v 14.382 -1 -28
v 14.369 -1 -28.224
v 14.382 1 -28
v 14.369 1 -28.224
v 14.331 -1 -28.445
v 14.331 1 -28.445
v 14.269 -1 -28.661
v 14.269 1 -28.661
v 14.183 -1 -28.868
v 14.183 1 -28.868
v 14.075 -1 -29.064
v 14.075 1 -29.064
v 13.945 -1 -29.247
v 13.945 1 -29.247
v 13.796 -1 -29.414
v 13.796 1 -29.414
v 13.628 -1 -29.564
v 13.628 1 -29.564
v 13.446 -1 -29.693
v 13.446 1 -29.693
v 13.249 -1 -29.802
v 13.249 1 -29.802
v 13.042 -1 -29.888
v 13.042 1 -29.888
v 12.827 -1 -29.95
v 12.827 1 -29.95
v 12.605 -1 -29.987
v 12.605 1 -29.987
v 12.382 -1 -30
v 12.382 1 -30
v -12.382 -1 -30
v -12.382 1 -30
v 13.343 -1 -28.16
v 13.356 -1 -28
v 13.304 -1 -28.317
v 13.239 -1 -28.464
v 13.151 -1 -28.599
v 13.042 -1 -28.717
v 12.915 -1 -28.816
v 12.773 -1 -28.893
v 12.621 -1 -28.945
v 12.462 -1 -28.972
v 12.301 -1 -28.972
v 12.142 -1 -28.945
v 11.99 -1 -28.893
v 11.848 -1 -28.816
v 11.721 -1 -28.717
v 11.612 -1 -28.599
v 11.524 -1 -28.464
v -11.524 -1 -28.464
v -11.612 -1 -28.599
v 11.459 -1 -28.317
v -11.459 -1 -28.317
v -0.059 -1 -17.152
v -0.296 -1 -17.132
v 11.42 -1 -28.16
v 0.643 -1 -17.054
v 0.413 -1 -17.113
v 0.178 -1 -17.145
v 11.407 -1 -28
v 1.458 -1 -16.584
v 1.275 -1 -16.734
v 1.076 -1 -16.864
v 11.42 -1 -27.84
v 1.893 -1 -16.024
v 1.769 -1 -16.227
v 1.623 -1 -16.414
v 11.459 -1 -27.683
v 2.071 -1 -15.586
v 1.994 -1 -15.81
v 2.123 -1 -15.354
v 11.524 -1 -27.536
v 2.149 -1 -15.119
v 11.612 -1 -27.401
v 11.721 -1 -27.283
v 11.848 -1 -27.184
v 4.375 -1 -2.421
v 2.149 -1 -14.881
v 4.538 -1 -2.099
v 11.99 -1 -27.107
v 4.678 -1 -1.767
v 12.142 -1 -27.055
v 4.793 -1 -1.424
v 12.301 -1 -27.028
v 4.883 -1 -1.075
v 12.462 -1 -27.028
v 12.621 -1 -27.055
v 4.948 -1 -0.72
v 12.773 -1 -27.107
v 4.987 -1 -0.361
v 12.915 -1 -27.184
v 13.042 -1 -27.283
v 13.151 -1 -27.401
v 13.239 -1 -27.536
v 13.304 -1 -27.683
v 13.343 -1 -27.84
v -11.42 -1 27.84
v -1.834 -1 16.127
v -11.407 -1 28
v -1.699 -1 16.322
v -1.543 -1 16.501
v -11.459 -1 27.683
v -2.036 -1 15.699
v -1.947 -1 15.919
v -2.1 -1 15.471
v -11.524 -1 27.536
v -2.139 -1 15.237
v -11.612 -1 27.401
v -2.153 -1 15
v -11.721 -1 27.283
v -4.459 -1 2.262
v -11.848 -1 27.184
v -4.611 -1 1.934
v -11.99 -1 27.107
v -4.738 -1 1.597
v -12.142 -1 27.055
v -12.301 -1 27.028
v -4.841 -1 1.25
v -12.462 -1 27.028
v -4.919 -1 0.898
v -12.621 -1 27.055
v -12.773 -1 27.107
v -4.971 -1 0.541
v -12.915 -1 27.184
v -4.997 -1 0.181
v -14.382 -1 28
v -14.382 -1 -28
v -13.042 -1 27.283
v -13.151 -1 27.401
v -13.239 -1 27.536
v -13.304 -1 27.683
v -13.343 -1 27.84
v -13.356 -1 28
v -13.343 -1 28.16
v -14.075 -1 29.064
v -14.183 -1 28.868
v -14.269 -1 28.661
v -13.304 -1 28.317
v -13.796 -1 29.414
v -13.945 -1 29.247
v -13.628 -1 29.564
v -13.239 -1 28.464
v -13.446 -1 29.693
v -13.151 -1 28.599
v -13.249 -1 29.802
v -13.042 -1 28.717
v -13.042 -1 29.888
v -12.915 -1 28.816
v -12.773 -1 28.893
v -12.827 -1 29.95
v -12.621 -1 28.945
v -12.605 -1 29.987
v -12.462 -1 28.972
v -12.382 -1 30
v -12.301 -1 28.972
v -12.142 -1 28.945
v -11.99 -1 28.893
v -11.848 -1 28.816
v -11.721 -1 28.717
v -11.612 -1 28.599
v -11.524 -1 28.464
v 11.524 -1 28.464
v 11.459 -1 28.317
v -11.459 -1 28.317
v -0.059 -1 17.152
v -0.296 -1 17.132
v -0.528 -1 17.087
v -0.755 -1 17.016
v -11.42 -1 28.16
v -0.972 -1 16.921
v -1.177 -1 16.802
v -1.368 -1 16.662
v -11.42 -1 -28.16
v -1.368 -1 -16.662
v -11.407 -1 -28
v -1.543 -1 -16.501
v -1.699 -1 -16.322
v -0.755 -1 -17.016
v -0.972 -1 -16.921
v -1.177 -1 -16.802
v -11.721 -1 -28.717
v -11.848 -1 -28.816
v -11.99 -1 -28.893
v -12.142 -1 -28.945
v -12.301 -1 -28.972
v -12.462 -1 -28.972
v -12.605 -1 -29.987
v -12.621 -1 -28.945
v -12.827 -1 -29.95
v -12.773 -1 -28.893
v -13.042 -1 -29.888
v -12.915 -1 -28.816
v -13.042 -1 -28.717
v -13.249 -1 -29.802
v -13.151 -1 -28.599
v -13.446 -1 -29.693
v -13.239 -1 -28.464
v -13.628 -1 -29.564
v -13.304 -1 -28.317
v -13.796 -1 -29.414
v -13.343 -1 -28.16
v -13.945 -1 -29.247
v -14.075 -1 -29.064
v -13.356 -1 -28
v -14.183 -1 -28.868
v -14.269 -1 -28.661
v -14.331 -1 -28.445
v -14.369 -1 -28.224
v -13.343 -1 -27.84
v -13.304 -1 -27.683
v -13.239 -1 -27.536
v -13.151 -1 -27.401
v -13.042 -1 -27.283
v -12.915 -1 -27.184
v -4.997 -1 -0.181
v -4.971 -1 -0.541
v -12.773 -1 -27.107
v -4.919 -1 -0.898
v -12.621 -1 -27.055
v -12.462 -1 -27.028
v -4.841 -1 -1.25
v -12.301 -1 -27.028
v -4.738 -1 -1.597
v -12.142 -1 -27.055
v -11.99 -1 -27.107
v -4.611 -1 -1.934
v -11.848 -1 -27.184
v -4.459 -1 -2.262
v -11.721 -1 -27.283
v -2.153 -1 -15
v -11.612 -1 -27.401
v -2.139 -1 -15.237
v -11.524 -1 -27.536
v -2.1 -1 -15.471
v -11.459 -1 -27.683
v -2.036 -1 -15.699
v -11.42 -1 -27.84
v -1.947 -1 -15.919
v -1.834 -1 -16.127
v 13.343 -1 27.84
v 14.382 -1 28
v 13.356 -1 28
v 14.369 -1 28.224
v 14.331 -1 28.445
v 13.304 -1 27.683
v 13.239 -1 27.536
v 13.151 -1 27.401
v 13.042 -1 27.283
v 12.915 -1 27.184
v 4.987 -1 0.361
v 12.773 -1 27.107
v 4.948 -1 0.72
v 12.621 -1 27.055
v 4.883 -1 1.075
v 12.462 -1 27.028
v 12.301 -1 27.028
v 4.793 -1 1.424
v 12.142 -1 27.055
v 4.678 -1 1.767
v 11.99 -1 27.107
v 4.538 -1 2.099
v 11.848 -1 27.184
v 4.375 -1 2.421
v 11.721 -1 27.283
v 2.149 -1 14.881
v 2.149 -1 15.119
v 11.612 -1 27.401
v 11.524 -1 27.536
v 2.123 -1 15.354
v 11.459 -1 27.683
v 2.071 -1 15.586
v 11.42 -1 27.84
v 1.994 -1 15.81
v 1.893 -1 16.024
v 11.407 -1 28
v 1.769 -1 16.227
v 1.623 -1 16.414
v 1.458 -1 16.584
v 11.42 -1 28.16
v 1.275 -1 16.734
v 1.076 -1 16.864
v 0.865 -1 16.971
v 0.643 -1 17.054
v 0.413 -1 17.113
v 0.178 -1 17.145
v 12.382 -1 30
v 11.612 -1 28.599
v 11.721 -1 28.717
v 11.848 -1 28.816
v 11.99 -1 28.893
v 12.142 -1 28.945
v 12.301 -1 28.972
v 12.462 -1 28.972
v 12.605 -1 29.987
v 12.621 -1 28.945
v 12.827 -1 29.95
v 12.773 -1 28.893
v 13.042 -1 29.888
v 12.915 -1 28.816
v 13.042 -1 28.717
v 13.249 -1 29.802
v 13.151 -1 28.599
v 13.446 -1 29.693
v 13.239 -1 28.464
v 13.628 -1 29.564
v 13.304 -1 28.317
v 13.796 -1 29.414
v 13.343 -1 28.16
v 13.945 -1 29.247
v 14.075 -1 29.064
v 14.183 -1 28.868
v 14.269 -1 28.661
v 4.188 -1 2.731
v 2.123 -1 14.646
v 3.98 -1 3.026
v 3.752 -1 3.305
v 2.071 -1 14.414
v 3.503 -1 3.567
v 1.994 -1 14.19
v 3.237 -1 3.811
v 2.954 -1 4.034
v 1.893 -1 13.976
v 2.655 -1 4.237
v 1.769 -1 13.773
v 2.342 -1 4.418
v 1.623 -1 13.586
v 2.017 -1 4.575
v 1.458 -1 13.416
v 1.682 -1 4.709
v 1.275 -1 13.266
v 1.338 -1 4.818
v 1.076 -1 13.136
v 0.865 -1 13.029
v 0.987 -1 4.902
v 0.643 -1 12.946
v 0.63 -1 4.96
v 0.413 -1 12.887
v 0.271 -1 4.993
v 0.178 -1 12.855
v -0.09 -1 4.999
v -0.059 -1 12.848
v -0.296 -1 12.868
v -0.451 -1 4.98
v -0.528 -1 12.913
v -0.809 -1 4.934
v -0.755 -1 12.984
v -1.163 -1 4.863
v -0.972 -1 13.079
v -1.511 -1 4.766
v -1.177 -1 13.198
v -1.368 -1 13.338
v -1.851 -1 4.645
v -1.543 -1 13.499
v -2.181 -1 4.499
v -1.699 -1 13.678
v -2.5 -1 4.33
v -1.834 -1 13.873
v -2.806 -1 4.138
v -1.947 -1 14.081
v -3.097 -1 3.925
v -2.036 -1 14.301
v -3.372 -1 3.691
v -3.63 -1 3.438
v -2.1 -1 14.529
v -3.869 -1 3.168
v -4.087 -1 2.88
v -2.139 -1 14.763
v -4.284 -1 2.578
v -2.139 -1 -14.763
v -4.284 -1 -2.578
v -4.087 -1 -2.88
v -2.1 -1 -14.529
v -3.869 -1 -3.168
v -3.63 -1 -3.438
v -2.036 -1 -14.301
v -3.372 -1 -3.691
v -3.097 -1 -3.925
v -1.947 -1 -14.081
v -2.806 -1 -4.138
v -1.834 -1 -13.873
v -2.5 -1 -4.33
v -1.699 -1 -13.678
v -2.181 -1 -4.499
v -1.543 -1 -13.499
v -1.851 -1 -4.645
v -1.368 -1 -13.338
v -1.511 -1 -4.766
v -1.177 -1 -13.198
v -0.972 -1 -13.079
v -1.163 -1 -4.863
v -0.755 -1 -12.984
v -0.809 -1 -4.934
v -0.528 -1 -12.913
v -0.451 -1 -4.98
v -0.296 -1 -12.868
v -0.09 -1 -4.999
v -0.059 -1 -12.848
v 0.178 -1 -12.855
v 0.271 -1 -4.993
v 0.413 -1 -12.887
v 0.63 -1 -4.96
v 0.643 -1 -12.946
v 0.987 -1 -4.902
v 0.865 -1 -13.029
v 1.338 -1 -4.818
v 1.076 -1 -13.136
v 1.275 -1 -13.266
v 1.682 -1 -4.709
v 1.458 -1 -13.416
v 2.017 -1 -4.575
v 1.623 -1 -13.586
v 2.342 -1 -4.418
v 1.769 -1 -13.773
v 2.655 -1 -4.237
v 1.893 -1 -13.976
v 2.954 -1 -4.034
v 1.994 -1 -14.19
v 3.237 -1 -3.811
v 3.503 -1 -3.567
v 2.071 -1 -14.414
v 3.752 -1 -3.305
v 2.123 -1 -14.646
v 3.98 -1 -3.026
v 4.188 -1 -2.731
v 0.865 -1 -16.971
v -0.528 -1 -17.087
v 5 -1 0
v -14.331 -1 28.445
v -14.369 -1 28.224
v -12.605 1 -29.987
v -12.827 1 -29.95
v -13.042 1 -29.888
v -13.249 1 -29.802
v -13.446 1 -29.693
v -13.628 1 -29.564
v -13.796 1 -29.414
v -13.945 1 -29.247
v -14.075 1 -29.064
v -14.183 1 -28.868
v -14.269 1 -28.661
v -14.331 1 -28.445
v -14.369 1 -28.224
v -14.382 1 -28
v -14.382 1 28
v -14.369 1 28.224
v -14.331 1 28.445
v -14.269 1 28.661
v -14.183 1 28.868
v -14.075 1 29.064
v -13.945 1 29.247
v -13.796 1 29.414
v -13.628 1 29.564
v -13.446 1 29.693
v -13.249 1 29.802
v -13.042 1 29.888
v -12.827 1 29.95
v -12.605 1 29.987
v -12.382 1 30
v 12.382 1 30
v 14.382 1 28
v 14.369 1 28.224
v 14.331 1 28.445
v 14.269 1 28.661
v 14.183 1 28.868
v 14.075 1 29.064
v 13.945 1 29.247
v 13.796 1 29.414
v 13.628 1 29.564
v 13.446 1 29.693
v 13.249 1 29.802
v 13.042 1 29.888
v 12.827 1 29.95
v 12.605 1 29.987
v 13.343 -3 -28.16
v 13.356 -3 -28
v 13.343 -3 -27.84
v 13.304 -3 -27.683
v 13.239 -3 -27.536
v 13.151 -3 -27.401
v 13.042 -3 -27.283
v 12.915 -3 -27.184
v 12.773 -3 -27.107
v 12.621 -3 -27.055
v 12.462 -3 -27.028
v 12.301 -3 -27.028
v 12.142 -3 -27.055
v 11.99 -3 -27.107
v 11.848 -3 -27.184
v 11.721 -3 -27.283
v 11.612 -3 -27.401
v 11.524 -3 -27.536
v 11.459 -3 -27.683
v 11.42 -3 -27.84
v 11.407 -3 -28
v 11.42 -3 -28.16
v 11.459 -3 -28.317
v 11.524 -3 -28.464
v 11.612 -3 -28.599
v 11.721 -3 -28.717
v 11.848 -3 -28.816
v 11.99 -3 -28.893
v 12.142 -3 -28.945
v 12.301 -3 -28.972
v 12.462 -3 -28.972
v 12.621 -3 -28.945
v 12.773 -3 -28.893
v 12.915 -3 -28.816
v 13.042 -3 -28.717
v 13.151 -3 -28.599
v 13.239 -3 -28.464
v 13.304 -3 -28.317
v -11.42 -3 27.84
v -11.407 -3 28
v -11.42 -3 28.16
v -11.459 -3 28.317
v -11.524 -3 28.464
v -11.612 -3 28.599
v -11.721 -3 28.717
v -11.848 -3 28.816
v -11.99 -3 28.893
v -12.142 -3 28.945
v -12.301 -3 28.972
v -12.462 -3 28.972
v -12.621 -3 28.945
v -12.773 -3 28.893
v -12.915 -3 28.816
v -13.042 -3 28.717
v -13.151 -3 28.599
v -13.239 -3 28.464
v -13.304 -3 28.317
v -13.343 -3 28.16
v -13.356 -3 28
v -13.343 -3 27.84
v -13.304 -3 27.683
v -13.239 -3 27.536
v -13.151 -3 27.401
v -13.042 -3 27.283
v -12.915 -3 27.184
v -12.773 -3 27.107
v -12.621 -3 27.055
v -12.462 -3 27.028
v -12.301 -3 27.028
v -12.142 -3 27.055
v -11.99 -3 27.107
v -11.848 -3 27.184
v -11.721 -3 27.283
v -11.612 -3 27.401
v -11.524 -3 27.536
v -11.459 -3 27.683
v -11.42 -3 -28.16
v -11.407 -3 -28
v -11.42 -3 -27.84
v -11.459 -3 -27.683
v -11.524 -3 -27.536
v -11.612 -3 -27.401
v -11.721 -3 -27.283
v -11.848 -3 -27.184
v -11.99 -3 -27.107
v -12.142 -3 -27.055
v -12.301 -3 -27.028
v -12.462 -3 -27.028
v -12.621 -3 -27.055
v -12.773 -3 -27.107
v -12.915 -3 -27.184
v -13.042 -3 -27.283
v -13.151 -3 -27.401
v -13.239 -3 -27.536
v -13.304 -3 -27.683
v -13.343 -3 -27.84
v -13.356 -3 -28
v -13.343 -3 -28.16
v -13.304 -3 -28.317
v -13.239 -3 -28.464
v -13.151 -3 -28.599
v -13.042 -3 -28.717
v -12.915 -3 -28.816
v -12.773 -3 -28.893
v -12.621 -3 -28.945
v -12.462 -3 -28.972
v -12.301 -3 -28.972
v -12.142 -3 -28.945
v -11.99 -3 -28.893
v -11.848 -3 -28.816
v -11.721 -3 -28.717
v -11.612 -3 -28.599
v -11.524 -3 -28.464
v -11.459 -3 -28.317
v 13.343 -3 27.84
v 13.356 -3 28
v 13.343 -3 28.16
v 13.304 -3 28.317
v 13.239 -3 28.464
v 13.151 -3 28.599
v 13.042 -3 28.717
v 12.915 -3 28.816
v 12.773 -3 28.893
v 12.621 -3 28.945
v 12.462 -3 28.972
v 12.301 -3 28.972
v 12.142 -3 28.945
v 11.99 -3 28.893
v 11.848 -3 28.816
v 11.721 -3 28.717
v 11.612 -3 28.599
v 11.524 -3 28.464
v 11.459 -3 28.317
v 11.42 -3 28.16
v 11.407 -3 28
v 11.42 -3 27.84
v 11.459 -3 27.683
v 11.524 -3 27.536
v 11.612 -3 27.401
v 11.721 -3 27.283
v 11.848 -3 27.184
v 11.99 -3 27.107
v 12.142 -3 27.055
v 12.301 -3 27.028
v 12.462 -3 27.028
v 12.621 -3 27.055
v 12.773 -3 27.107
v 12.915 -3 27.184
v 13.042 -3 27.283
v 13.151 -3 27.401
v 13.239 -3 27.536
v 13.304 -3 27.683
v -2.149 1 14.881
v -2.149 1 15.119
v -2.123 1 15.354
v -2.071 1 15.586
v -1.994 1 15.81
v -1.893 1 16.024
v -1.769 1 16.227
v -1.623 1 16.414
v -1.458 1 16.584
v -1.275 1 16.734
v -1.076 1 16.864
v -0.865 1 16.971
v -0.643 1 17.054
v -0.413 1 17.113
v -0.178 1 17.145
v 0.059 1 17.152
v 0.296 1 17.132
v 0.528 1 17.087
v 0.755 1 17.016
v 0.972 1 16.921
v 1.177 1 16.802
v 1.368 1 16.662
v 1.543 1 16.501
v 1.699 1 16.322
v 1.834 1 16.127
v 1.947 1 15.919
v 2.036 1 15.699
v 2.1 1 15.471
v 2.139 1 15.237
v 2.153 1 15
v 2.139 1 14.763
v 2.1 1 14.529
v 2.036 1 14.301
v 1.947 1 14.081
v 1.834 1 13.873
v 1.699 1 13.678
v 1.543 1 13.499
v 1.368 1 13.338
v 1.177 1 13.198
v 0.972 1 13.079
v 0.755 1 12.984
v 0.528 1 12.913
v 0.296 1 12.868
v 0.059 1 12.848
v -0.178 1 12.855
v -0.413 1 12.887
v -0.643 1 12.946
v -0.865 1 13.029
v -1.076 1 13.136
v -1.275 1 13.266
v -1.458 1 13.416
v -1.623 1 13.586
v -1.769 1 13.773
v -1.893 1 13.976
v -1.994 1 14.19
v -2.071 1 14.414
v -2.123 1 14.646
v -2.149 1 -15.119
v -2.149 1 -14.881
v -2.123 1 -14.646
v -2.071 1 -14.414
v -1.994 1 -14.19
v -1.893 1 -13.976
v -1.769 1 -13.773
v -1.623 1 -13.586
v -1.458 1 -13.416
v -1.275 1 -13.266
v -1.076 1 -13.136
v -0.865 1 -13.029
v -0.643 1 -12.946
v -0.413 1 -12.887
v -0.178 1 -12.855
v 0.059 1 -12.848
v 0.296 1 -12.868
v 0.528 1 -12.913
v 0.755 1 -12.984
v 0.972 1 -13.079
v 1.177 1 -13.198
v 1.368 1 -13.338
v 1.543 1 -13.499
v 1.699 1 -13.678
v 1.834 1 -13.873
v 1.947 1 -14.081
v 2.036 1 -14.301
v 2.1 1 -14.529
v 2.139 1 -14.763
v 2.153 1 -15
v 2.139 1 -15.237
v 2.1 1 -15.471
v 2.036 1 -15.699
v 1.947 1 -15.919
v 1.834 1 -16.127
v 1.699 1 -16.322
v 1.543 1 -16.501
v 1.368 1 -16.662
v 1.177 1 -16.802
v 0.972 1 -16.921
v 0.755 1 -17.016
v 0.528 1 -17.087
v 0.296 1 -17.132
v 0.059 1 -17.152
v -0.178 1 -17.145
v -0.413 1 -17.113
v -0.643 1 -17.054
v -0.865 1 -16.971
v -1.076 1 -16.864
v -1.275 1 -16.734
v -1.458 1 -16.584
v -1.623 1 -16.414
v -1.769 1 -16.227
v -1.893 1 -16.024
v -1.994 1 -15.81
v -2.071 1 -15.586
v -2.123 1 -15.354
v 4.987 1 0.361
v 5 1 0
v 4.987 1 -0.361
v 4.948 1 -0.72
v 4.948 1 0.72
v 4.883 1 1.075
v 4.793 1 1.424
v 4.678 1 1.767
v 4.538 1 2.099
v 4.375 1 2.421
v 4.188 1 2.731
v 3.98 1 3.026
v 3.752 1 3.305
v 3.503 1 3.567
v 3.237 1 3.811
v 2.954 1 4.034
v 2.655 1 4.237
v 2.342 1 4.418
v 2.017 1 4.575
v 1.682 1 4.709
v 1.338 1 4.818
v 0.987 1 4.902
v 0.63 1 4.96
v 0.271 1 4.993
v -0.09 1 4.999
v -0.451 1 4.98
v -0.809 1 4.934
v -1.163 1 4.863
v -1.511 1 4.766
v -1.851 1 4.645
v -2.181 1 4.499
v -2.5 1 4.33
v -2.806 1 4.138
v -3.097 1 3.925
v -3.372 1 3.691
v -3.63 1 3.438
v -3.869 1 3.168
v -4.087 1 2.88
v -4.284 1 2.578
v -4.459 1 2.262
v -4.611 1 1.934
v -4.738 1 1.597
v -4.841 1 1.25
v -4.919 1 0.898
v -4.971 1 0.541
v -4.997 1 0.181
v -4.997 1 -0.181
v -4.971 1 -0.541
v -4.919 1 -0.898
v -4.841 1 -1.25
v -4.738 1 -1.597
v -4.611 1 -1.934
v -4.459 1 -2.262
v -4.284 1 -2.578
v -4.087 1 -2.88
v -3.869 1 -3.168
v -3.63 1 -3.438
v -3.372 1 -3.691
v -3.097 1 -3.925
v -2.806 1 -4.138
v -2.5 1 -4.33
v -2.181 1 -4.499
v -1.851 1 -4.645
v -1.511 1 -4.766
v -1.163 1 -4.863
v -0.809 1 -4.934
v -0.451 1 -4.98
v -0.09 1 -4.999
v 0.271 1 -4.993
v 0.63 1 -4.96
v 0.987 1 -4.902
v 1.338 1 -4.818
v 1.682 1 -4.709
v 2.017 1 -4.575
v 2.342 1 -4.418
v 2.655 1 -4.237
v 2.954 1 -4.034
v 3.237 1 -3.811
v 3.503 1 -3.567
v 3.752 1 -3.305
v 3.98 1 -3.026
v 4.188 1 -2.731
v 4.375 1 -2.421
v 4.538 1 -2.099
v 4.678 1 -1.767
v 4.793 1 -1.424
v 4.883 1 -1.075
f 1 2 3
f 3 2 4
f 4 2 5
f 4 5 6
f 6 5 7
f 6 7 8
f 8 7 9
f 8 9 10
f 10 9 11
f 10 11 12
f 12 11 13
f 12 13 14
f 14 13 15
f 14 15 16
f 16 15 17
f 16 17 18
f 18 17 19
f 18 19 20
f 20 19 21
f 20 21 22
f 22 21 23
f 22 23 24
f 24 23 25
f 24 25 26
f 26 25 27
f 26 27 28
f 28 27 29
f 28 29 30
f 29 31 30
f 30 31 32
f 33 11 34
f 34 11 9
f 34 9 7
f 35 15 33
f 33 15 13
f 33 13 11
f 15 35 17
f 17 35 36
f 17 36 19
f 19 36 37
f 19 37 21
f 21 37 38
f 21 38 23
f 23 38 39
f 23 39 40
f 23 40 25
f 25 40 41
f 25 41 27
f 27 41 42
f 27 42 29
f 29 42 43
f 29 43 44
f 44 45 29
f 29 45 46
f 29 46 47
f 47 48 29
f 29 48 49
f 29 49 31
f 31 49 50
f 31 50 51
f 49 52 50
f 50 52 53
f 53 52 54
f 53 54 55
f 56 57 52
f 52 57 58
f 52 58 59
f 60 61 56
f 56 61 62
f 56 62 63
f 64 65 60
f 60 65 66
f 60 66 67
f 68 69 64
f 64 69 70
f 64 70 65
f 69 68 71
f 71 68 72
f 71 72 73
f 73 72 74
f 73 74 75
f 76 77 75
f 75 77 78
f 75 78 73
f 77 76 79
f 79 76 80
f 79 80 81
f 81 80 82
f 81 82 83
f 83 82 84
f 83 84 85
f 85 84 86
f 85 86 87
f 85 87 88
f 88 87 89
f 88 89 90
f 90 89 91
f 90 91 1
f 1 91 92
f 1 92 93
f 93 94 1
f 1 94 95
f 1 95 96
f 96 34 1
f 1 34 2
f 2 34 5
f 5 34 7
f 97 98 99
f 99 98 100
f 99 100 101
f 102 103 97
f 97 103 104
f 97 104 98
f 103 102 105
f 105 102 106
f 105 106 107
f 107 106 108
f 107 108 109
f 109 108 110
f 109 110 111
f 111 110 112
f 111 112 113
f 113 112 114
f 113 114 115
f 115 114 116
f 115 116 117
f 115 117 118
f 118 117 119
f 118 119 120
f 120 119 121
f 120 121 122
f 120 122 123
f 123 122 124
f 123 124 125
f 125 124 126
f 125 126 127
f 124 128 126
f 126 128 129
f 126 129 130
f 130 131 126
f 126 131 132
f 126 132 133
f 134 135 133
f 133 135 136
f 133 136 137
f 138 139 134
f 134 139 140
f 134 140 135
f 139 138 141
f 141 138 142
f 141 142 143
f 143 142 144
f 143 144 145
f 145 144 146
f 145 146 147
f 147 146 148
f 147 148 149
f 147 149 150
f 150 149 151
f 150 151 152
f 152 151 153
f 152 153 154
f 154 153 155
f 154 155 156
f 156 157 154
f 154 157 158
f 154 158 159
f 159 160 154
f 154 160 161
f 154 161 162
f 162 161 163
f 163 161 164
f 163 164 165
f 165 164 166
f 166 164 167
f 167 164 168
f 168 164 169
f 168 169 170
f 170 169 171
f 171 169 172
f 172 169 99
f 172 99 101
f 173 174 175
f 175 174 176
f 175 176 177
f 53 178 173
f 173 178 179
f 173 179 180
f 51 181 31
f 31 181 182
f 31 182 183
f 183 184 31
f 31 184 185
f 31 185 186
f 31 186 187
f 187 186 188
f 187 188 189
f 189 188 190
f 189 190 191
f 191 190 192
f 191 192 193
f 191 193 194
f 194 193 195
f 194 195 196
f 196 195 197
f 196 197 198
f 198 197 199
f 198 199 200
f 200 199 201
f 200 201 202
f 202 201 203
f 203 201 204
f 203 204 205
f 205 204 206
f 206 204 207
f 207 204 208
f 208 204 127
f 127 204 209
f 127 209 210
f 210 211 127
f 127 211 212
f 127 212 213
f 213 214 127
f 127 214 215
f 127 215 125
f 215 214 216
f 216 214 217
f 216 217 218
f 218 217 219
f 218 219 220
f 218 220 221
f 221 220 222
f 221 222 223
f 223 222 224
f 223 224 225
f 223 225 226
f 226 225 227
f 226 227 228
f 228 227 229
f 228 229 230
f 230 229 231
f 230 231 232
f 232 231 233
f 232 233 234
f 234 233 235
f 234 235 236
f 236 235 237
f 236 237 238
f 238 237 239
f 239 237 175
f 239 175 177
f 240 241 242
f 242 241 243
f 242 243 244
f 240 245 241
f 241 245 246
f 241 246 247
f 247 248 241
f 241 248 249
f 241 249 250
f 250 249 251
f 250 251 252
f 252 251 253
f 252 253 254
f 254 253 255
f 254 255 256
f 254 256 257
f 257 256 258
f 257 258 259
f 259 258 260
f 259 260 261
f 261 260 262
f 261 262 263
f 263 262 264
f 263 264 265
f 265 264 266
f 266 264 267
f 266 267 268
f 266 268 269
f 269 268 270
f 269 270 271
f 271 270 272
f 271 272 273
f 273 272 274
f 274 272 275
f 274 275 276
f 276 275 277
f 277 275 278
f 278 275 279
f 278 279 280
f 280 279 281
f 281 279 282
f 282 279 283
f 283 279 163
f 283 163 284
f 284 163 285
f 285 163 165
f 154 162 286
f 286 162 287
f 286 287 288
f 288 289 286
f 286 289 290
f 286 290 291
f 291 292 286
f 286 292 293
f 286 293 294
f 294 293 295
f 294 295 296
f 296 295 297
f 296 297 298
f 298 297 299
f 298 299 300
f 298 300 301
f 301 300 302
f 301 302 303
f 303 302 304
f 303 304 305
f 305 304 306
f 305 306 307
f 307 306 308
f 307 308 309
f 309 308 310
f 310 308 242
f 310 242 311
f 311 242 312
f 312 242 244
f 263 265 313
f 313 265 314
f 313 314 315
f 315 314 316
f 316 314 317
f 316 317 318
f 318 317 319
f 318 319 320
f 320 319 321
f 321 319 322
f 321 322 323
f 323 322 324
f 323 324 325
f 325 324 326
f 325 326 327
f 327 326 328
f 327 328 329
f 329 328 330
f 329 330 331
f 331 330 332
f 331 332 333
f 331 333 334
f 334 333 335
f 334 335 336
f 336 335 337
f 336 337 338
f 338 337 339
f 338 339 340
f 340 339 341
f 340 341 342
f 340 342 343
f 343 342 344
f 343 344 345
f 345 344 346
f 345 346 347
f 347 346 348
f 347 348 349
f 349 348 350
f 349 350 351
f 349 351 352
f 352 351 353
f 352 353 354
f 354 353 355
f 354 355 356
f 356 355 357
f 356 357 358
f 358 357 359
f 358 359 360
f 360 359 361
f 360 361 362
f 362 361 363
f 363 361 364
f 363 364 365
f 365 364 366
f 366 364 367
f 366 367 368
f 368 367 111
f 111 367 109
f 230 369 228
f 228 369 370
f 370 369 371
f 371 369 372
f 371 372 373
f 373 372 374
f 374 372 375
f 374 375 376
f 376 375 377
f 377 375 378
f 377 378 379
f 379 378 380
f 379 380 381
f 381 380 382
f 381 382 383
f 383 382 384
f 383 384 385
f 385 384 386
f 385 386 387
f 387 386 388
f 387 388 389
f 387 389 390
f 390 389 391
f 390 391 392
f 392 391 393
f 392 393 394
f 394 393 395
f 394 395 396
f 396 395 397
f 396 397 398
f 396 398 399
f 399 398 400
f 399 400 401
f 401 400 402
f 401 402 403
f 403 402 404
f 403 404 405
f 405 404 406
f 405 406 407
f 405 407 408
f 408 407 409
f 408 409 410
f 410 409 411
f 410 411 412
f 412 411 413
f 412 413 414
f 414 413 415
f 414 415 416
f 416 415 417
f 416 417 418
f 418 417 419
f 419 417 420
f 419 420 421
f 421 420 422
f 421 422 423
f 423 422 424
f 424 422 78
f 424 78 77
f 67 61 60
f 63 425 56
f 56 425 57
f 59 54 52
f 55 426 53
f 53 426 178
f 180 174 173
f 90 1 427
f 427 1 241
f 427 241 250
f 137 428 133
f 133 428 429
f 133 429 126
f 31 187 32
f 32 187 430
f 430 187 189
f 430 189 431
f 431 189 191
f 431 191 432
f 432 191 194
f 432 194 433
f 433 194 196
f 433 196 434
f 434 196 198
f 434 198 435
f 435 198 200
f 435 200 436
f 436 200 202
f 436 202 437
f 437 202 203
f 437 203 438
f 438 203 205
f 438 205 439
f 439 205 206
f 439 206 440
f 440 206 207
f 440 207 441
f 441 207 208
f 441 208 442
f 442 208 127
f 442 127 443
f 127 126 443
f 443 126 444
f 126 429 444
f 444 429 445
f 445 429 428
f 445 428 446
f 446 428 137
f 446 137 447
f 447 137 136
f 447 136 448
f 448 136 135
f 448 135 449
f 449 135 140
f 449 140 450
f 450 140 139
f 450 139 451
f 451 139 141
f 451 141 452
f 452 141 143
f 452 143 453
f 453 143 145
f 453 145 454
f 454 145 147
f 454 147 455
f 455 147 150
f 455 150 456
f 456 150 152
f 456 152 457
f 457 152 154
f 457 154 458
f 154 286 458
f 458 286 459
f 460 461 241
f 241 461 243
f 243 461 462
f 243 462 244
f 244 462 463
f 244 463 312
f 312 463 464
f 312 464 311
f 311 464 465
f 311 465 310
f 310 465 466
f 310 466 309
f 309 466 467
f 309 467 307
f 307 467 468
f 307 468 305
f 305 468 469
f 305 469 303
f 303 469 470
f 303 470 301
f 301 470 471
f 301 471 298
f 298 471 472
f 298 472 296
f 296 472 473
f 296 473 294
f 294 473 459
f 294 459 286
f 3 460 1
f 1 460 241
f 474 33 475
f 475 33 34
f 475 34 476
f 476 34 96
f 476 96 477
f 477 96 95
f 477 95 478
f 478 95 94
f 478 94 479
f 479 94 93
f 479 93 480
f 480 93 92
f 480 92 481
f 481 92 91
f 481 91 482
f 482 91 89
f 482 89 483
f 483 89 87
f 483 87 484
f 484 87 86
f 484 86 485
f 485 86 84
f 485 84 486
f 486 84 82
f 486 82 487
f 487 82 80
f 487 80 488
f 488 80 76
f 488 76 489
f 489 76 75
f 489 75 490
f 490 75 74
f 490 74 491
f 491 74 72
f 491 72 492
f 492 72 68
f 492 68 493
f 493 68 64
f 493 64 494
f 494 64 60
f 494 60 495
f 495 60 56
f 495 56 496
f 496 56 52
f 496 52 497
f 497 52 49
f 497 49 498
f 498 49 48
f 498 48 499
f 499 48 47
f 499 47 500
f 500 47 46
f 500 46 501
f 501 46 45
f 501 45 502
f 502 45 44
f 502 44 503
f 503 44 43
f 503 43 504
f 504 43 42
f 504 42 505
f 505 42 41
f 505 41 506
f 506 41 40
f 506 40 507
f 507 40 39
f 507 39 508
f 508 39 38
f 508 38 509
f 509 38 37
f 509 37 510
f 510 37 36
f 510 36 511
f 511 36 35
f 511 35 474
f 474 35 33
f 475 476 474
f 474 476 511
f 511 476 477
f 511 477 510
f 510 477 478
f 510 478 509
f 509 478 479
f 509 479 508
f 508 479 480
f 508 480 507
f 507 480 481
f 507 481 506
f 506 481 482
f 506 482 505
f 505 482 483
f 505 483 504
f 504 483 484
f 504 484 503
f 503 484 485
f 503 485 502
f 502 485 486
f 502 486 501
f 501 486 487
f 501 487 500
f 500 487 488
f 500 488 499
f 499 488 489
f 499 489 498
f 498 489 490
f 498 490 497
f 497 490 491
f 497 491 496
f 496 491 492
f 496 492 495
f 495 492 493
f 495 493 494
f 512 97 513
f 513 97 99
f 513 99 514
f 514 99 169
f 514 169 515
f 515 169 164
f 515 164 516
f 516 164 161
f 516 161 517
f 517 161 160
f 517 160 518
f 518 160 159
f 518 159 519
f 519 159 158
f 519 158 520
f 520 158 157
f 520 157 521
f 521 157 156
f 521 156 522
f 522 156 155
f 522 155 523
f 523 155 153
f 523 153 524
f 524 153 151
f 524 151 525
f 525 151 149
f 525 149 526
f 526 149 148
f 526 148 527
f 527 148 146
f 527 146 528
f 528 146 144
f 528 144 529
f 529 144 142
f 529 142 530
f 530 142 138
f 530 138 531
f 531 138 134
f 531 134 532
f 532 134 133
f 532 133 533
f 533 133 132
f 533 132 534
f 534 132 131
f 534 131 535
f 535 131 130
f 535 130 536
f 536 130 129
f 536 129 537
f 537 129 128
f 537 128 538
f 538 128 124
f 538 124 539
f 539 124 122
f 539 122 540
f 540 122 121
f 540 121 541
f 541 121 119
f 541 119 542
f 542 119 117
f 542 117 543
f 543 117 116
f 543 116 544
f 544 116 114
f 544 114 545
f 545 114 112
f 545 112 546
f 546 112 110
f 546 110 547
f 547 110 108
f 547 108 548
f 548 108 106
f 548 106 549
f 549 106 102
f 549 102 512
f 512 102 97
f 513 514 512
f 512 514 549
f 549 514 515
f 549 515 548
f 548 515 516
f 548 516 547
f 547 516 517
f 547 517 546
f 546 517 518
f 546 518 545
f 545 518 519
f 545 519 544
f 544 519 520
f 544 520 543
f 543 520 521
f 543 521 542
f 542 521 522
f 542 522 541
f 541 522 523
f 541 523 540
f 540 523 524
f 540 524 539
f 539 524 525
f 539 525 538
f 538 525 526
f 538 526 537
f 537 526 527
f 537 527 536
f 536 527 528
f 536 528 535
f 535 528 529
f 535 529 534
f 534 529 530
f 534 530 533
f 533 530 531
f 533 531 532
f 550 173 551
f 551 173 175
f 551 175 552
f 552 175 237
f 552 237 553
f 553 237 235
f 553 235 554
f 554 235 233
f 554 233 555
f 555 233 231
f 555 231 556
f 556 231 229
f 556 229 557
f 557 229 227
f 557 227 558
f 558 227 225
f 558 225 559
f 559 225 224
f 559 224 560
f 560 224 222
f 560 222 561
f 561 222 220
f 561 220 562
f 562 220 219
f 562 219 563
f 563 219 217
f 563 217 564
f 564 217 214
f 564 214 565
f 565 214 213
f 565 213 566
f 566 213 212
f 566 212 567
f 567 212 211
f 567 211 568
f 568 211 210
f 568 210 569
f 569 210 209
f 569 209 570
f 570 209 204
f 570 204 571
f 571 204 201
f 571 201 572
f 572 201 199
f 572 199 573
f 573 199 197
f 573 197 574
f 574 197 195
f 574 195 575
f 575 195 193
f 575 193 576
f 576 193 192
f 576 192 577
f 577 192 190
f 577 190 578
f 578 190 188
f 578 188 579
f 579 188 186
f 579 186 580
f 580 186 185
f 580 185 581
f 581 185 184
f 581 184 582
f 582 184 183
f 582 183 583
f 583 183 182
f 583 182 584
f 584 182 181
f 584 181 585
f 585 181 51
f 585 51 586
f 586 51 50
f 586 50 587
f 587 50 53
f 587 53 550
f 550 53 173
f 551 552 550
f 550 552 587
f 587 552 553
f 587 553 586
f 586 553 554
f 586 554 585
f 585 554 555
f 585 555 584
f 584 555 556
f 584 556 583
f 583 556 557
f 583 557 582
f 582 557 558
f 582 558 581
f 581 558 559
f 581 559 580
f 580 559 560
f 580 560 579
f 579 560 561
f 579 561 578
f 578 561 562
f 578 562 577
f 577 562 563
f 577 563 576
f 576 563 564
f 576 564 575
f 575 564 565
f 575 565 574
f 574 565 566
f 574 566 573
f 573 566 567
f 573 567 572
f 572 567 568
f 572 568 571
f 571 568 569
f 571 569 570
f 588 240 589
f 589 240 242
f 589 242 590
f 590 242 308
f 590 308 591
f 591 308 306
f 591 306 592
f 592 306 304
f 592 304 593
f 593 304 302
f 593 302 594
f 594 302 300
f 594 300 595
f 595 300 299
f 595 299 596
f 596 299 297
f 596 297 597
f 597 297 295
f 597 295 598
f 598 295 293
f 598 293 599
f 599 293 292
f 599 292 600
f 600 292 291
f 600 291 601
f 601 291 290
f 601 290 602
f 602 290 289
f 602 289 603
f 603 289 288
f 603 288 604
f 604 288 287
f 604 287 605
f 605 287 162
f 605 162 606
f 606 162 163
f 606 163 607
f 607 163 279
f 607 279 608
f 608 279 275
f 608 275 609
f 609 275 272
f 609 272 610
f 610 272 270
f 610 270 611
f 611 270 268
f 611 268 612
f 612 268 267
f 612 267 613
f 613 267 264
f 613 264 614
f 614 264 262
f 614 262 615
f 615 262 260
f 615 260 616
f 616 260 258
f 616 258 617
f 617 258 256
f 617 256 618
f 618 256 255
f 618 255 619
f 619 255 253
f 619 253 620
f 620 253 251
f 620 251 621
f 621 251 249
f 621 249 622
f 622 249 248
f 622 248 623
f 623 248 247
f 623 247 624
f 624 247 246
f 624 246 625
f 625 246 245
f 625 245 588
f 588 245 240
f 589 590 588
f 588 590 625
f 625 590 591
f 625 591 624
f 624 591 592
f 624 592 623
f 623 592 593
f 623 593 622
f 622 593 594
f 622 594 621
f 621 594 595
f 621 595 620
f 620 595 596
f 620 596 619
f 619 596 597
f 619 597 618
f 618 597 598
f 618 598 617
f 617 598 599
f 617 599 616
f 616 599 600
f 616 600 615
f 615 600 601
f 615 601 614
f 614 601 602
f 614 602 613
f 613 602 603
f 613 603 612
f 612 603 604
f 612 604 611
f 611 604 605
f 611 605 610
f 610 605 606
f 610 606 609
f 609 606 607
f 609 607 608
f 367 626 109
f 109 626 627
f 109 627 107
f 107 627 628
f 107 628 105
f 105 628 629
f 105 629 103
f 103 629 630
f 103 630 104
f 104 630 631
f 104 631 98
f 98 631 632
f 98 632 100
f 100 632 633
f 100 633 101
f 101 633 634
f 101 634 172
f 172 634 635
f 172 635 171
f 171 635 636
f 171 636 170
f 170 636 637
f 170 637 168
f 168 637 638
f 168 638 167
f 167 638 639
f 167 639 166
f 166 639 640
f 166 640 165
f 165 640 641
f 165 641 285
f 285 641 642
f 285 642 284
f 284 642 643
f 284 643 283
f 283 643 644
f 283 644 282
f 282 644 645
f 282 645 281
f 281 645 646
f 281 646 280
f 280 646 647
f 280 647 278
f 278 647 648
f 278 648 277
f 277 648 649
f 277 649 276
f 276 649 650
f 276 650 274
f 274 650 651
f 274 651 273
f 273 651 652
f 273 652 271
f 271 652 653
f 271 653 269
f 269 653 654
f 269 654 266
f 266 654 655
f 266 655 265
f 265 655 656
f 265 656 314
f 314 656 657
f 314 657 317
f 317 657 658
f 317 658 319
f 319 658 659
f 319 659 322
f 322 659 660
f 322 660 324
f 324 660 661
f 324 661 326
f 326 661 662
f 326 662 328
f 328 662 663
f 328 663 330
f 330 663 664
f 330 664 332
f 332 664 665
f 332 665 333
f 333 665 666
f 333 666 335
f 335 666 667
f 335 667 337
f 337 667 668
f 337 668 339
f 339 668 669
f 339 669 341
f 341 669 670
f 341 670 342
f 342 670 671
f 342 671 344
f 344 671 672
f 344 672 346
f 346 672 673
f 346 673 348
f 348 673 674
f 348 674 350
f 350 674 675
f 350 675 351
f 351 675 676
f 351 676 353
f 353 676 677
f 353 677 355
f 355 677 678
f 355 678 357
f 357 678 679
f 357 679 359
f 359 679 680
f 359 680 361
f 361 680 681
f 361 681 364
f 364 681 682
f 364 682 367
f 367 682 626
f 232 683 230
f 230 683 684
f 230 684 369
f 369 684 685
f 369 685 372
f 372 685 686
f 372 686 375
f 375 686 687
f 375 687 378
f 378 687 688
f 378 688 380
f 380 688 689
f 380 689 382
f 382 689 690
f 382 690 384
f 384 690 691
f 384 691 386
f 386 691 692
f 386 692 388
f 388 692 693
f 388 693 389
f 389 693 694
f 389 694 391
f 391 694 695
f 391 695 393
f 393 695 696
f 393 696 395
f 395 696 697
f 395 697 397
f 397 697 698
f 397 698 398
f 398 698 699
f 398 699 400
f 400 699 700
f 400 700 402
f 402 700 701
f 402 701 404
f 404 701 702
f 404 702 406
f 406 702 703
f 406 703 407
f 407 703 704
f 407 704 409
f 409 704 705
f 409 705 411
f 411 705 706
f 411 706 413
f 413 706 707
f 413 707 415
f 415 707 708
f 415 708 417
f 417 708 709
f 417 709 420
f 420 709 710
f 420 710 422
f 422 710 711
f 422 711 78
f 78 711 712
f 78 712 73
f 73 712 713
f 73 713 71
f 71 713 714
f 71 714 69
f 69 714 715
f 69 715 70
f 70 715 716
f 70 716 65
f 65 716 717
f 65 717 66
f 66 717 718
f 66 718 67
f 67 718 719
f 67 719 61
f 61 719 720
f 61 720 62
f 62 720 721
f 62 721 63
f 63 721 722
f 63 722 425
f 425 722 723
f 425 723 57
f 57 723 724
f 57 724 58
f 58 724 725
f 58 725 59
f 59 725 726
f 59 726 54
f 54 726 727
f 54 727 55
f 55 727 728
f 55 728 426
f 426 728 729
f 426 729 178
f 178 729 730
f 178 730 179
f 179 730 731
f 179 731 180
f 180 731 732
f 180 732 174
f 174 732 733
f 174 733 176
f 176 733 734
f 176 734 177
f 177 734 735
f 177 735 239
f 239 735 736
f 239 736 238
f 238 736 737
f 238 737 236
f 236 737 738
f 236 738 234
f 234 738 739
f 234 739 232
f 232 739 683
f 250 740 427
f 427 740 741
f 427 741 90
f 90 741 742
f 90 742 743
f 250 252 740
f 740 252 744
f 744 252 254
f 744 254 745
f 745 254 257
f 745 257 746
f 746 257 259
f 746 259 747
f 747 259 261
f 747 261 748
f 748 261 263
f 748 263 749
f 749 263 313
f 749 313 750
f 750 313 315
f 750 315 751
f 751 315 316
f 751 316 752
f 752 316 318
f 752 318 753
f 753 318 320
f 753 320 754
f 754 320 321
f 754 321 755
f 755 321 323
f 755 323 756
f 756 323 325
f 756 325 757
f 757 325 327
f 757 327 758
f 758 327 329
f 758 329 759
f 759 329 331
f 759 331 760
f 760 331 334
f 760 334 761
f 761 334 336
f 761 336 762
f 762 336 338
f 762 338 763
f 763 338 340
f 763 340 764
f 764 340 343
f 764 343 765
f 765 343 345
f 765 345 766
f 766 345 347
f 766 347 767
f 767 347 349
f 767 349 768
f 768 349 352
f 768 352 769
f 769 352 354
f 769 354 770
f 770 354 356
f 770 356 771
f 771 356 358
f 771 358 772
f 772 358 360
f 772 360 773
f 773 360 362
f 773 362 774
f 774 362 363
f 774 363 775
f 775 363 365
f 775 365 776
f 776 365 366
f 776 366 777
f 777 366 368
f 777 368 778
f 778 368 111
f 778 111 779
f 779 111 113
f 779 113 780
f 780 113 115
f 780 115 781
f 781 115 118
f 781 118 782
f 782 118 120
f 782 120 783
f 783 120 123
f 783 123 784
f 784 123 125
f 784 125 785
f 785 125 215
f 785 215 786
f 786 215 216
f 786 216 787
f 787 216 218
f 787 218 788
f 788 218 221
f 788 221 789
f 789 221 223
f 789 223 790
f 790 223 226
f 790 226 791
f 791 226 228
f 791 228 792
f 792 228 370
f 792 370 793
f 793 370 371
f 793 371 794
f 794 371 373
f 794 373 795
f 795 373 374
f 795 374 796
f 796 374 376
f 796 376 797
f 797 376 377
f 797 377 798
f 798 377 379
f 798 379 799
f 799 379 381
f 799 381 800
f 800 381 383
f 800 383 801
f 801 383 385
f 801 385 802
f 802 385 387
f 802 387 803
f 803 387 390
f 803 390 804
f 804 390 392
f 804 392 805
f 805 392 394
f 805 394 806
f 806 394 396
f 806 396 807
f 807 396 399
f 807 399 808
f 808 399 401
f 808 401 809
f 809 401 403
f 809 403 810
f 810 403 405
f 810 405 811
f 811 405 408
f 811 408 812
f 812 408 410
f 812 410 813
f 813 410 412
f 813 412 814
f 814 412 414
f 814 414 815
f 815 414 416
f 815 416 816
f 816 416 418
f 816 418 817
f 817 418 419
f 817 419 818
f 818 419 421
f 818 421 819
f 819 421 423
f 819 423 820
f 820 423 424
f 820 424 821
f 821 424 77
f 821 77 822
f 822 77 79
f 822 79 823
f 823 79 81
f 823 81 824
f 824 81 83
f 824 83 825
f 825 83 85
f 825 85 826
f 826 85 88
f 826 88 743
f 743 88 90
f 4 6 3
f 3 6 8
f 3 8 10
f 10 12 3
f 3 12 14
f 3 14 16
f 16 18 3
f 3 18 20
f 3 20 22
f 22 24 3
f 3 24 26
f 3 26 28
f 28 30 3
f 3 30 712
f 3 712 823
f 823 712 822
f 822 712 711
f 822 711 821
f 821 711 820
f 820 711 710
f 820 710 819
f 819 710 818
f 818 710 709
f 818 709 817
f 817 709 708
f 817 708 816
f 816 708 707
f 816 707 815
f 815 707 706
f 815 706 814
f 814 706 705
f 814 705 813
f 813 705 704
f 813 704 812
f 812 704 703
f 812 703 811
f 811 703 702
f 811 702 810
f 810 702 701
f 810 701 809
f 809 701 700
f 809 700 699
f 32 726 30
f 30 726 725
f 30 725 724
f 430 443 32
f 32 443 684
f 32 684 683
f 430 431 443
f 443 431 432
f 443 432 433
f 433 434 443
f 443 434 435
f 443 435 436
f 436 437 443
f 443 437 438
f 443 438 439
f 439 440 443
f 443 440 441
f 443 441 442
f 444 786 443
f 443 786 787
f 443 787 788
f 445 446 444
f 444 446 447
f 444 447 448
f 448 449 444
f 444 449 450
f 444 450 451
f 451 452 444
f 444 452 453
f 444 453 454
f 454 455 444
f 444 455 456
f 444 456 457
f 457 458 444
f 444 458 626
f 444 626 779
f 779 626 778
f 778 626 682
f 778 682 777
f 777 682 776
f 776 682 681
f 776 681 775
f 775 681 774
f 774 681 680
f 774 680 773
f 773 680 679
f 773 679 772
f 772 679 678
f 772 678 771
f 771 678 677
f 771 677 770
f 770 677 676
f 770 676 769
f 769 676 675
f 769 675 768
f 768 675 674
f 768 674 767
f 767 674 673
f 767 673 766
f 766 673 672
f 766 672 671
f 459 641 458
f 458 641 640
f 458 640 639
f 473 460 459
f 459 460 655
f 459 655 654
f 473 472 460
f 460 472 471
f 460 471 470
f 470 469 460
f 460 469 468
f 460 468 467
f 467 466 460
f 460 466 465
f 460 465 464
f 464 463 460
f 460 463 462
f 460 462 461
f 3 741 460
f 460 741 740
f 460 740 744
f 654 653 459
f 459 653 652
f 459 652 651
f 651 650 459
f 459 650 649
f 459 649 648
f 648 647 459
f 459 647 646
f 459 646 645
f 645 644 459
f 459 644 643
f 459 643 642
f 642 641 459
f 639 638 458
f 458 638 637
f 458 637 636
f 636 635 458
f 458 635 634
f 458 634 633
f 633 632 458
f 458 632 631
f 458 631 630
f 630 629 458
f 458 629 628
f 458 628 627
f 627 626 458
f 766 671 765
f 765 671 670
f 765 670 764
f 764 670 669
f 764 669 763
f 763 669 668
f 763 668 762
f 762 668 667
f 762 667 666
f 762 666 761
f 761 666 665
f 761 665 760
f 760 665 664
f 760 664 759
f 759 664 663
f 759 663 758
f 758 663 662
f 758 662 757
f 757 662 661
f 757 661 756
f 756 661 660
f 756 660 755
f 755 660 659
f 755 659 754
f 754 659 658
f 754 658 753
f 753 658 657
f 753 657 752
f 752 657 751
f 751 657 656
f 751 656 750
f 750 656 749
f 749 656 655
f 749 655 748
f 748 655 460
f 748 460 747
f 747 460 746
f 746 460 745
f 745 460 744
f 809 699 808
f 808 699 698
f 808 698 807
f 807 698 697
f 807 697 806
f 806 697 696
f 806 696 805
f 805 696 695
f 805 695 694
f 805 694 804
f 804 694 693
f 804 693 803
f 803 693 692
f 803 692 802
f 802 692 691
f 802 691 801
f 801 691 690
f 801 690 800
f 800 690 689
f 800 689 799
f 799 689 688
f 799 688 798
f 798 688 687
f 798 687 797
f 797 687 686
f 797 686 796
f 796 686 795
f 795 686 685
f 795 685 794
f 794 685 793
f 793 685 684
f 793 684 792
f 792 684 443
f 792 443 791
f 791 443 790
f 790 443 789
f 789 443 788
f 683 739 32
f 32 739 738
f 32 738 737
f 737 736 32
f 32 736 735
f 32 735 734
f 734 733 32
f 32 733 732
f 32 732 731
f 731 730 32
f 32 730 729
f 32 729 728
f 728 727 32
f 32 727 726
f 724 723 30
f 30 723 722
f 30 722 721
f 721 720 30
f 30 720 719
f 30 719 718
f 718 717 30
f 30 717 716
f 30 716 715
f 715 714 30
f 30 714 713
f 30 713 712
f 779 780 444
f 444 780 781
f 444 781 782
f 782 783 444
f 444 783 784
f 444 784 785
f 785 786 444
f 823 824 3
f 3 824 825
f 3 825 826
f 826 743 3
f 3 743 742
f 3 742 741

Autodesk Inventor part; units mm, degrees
ref_plane "YZ Plane" through (0, 0, 0) normal (1, 0, 0) x (0, 1, 0)
ref_plane "XZ Plane" through (0, 0, 0) normal (0, 1, 0) x (-1, 0, 0)
ref_plane "XY Plane" through (0, 0, 0) normal (0, 0, 1) x (1, 0, 0)
sketch "Sketch1" plane through (0, 0, 0) normal (0, 1, 0) x (-1, 0, 0)
  line L0 (-14.3815, 30) -> (14.3815, 30)
  line L1 (14.3815, 30) -> (14.3815, -30)
  line L2 (14.3815, -30) -> (-14.3815, -30)
  line L3 (-14.3815, -30) -> (-14.3815, 30)
  line L4 (-14.3815, 30) -> (14.3815, -30) construction
  line L5 (14.3815, 30) -> (-14.3815, -30) construction
  point P0 (0, 0)
  dimension "d2" = 60
  dimension "d3" = 28.763
extrude "Extrusion1" add sketch "Sketch1" along normal mid plane 2
sketch "Sketch2" plane through (0, 1, 0) normal (0, 1, 0) x (1, 0, 0)
  circle A0 centre (0, 0) radius 5
  dimension "d4" = 10
extrude "Extrusion2" cut sketch "Sketch2" against normal through all
sketch "Sketch3" plane through (0, 1, 0) normal (0, 1, 0) x (1, 0, 0)
  line L0 (0, 0) -> (0, 30) construction
  line L1 (-14.3815, 30) -> (14.3815, 30) construction
  line L2 (0, 0) -> (0, -30) construction
  line L3 (14.3815, -30) -> (-14.3815, -30) construction
  point P0 (0, -15)
  point P1 (0, 15)
hole "Hole1" at (0, 1, 15) at (0, 1, -15) direction (0, -1, 0) diameter 4.305 end through all clearance for "Flat Head Machine Screw (82)" size "#6" standard "Ansi Unified Screw Threads"
sketch "Sketch4" plane through (0, -1, 0) normal (0, -1, 0) x (1, 0, 0)
  circle A0 centre (-12.3815, 28) radius 0.975
  circle A1 centre (-12.3815, -28) radius 0.975
  circle A2 centre (12.3815, -28) radius 0.975
  circle A3 centre (12.3815, 28) radius 0.975
  line L0 (-14.3815, 30) -> (-14.3815, -30) projected
  line L1 (14.3815, 30) -> (-14.3815, 30) projected
  line L2 (14.3815, -30) -> (14.3815, 30) projected
  line L3 (-14.3815, -30) -> (14.3815, -30) projected
  point P0 (0, 0)
  dimension "d14" = 1.95
  dimension "d15" = 2
  dimension "d16" = 2
  dimension "d17" = 2
  dimension "d18" = 2
extrude "Extrusion3" add sketch "Sketch4" along normal blind 2 contours A0 | A1 | A2 | A3
fillet "Fillet1" radius 2 4 edges at (14.3815, 0, 30) (-14.3815, 0, 30) (-14.3815, 0, -30) (14.3815, 0, -30)
equation "\"d16\" = d15"
equation "\"d17\" = d15"
equation "\"d18\" = d15"
properties part number "GearCoverTop"
